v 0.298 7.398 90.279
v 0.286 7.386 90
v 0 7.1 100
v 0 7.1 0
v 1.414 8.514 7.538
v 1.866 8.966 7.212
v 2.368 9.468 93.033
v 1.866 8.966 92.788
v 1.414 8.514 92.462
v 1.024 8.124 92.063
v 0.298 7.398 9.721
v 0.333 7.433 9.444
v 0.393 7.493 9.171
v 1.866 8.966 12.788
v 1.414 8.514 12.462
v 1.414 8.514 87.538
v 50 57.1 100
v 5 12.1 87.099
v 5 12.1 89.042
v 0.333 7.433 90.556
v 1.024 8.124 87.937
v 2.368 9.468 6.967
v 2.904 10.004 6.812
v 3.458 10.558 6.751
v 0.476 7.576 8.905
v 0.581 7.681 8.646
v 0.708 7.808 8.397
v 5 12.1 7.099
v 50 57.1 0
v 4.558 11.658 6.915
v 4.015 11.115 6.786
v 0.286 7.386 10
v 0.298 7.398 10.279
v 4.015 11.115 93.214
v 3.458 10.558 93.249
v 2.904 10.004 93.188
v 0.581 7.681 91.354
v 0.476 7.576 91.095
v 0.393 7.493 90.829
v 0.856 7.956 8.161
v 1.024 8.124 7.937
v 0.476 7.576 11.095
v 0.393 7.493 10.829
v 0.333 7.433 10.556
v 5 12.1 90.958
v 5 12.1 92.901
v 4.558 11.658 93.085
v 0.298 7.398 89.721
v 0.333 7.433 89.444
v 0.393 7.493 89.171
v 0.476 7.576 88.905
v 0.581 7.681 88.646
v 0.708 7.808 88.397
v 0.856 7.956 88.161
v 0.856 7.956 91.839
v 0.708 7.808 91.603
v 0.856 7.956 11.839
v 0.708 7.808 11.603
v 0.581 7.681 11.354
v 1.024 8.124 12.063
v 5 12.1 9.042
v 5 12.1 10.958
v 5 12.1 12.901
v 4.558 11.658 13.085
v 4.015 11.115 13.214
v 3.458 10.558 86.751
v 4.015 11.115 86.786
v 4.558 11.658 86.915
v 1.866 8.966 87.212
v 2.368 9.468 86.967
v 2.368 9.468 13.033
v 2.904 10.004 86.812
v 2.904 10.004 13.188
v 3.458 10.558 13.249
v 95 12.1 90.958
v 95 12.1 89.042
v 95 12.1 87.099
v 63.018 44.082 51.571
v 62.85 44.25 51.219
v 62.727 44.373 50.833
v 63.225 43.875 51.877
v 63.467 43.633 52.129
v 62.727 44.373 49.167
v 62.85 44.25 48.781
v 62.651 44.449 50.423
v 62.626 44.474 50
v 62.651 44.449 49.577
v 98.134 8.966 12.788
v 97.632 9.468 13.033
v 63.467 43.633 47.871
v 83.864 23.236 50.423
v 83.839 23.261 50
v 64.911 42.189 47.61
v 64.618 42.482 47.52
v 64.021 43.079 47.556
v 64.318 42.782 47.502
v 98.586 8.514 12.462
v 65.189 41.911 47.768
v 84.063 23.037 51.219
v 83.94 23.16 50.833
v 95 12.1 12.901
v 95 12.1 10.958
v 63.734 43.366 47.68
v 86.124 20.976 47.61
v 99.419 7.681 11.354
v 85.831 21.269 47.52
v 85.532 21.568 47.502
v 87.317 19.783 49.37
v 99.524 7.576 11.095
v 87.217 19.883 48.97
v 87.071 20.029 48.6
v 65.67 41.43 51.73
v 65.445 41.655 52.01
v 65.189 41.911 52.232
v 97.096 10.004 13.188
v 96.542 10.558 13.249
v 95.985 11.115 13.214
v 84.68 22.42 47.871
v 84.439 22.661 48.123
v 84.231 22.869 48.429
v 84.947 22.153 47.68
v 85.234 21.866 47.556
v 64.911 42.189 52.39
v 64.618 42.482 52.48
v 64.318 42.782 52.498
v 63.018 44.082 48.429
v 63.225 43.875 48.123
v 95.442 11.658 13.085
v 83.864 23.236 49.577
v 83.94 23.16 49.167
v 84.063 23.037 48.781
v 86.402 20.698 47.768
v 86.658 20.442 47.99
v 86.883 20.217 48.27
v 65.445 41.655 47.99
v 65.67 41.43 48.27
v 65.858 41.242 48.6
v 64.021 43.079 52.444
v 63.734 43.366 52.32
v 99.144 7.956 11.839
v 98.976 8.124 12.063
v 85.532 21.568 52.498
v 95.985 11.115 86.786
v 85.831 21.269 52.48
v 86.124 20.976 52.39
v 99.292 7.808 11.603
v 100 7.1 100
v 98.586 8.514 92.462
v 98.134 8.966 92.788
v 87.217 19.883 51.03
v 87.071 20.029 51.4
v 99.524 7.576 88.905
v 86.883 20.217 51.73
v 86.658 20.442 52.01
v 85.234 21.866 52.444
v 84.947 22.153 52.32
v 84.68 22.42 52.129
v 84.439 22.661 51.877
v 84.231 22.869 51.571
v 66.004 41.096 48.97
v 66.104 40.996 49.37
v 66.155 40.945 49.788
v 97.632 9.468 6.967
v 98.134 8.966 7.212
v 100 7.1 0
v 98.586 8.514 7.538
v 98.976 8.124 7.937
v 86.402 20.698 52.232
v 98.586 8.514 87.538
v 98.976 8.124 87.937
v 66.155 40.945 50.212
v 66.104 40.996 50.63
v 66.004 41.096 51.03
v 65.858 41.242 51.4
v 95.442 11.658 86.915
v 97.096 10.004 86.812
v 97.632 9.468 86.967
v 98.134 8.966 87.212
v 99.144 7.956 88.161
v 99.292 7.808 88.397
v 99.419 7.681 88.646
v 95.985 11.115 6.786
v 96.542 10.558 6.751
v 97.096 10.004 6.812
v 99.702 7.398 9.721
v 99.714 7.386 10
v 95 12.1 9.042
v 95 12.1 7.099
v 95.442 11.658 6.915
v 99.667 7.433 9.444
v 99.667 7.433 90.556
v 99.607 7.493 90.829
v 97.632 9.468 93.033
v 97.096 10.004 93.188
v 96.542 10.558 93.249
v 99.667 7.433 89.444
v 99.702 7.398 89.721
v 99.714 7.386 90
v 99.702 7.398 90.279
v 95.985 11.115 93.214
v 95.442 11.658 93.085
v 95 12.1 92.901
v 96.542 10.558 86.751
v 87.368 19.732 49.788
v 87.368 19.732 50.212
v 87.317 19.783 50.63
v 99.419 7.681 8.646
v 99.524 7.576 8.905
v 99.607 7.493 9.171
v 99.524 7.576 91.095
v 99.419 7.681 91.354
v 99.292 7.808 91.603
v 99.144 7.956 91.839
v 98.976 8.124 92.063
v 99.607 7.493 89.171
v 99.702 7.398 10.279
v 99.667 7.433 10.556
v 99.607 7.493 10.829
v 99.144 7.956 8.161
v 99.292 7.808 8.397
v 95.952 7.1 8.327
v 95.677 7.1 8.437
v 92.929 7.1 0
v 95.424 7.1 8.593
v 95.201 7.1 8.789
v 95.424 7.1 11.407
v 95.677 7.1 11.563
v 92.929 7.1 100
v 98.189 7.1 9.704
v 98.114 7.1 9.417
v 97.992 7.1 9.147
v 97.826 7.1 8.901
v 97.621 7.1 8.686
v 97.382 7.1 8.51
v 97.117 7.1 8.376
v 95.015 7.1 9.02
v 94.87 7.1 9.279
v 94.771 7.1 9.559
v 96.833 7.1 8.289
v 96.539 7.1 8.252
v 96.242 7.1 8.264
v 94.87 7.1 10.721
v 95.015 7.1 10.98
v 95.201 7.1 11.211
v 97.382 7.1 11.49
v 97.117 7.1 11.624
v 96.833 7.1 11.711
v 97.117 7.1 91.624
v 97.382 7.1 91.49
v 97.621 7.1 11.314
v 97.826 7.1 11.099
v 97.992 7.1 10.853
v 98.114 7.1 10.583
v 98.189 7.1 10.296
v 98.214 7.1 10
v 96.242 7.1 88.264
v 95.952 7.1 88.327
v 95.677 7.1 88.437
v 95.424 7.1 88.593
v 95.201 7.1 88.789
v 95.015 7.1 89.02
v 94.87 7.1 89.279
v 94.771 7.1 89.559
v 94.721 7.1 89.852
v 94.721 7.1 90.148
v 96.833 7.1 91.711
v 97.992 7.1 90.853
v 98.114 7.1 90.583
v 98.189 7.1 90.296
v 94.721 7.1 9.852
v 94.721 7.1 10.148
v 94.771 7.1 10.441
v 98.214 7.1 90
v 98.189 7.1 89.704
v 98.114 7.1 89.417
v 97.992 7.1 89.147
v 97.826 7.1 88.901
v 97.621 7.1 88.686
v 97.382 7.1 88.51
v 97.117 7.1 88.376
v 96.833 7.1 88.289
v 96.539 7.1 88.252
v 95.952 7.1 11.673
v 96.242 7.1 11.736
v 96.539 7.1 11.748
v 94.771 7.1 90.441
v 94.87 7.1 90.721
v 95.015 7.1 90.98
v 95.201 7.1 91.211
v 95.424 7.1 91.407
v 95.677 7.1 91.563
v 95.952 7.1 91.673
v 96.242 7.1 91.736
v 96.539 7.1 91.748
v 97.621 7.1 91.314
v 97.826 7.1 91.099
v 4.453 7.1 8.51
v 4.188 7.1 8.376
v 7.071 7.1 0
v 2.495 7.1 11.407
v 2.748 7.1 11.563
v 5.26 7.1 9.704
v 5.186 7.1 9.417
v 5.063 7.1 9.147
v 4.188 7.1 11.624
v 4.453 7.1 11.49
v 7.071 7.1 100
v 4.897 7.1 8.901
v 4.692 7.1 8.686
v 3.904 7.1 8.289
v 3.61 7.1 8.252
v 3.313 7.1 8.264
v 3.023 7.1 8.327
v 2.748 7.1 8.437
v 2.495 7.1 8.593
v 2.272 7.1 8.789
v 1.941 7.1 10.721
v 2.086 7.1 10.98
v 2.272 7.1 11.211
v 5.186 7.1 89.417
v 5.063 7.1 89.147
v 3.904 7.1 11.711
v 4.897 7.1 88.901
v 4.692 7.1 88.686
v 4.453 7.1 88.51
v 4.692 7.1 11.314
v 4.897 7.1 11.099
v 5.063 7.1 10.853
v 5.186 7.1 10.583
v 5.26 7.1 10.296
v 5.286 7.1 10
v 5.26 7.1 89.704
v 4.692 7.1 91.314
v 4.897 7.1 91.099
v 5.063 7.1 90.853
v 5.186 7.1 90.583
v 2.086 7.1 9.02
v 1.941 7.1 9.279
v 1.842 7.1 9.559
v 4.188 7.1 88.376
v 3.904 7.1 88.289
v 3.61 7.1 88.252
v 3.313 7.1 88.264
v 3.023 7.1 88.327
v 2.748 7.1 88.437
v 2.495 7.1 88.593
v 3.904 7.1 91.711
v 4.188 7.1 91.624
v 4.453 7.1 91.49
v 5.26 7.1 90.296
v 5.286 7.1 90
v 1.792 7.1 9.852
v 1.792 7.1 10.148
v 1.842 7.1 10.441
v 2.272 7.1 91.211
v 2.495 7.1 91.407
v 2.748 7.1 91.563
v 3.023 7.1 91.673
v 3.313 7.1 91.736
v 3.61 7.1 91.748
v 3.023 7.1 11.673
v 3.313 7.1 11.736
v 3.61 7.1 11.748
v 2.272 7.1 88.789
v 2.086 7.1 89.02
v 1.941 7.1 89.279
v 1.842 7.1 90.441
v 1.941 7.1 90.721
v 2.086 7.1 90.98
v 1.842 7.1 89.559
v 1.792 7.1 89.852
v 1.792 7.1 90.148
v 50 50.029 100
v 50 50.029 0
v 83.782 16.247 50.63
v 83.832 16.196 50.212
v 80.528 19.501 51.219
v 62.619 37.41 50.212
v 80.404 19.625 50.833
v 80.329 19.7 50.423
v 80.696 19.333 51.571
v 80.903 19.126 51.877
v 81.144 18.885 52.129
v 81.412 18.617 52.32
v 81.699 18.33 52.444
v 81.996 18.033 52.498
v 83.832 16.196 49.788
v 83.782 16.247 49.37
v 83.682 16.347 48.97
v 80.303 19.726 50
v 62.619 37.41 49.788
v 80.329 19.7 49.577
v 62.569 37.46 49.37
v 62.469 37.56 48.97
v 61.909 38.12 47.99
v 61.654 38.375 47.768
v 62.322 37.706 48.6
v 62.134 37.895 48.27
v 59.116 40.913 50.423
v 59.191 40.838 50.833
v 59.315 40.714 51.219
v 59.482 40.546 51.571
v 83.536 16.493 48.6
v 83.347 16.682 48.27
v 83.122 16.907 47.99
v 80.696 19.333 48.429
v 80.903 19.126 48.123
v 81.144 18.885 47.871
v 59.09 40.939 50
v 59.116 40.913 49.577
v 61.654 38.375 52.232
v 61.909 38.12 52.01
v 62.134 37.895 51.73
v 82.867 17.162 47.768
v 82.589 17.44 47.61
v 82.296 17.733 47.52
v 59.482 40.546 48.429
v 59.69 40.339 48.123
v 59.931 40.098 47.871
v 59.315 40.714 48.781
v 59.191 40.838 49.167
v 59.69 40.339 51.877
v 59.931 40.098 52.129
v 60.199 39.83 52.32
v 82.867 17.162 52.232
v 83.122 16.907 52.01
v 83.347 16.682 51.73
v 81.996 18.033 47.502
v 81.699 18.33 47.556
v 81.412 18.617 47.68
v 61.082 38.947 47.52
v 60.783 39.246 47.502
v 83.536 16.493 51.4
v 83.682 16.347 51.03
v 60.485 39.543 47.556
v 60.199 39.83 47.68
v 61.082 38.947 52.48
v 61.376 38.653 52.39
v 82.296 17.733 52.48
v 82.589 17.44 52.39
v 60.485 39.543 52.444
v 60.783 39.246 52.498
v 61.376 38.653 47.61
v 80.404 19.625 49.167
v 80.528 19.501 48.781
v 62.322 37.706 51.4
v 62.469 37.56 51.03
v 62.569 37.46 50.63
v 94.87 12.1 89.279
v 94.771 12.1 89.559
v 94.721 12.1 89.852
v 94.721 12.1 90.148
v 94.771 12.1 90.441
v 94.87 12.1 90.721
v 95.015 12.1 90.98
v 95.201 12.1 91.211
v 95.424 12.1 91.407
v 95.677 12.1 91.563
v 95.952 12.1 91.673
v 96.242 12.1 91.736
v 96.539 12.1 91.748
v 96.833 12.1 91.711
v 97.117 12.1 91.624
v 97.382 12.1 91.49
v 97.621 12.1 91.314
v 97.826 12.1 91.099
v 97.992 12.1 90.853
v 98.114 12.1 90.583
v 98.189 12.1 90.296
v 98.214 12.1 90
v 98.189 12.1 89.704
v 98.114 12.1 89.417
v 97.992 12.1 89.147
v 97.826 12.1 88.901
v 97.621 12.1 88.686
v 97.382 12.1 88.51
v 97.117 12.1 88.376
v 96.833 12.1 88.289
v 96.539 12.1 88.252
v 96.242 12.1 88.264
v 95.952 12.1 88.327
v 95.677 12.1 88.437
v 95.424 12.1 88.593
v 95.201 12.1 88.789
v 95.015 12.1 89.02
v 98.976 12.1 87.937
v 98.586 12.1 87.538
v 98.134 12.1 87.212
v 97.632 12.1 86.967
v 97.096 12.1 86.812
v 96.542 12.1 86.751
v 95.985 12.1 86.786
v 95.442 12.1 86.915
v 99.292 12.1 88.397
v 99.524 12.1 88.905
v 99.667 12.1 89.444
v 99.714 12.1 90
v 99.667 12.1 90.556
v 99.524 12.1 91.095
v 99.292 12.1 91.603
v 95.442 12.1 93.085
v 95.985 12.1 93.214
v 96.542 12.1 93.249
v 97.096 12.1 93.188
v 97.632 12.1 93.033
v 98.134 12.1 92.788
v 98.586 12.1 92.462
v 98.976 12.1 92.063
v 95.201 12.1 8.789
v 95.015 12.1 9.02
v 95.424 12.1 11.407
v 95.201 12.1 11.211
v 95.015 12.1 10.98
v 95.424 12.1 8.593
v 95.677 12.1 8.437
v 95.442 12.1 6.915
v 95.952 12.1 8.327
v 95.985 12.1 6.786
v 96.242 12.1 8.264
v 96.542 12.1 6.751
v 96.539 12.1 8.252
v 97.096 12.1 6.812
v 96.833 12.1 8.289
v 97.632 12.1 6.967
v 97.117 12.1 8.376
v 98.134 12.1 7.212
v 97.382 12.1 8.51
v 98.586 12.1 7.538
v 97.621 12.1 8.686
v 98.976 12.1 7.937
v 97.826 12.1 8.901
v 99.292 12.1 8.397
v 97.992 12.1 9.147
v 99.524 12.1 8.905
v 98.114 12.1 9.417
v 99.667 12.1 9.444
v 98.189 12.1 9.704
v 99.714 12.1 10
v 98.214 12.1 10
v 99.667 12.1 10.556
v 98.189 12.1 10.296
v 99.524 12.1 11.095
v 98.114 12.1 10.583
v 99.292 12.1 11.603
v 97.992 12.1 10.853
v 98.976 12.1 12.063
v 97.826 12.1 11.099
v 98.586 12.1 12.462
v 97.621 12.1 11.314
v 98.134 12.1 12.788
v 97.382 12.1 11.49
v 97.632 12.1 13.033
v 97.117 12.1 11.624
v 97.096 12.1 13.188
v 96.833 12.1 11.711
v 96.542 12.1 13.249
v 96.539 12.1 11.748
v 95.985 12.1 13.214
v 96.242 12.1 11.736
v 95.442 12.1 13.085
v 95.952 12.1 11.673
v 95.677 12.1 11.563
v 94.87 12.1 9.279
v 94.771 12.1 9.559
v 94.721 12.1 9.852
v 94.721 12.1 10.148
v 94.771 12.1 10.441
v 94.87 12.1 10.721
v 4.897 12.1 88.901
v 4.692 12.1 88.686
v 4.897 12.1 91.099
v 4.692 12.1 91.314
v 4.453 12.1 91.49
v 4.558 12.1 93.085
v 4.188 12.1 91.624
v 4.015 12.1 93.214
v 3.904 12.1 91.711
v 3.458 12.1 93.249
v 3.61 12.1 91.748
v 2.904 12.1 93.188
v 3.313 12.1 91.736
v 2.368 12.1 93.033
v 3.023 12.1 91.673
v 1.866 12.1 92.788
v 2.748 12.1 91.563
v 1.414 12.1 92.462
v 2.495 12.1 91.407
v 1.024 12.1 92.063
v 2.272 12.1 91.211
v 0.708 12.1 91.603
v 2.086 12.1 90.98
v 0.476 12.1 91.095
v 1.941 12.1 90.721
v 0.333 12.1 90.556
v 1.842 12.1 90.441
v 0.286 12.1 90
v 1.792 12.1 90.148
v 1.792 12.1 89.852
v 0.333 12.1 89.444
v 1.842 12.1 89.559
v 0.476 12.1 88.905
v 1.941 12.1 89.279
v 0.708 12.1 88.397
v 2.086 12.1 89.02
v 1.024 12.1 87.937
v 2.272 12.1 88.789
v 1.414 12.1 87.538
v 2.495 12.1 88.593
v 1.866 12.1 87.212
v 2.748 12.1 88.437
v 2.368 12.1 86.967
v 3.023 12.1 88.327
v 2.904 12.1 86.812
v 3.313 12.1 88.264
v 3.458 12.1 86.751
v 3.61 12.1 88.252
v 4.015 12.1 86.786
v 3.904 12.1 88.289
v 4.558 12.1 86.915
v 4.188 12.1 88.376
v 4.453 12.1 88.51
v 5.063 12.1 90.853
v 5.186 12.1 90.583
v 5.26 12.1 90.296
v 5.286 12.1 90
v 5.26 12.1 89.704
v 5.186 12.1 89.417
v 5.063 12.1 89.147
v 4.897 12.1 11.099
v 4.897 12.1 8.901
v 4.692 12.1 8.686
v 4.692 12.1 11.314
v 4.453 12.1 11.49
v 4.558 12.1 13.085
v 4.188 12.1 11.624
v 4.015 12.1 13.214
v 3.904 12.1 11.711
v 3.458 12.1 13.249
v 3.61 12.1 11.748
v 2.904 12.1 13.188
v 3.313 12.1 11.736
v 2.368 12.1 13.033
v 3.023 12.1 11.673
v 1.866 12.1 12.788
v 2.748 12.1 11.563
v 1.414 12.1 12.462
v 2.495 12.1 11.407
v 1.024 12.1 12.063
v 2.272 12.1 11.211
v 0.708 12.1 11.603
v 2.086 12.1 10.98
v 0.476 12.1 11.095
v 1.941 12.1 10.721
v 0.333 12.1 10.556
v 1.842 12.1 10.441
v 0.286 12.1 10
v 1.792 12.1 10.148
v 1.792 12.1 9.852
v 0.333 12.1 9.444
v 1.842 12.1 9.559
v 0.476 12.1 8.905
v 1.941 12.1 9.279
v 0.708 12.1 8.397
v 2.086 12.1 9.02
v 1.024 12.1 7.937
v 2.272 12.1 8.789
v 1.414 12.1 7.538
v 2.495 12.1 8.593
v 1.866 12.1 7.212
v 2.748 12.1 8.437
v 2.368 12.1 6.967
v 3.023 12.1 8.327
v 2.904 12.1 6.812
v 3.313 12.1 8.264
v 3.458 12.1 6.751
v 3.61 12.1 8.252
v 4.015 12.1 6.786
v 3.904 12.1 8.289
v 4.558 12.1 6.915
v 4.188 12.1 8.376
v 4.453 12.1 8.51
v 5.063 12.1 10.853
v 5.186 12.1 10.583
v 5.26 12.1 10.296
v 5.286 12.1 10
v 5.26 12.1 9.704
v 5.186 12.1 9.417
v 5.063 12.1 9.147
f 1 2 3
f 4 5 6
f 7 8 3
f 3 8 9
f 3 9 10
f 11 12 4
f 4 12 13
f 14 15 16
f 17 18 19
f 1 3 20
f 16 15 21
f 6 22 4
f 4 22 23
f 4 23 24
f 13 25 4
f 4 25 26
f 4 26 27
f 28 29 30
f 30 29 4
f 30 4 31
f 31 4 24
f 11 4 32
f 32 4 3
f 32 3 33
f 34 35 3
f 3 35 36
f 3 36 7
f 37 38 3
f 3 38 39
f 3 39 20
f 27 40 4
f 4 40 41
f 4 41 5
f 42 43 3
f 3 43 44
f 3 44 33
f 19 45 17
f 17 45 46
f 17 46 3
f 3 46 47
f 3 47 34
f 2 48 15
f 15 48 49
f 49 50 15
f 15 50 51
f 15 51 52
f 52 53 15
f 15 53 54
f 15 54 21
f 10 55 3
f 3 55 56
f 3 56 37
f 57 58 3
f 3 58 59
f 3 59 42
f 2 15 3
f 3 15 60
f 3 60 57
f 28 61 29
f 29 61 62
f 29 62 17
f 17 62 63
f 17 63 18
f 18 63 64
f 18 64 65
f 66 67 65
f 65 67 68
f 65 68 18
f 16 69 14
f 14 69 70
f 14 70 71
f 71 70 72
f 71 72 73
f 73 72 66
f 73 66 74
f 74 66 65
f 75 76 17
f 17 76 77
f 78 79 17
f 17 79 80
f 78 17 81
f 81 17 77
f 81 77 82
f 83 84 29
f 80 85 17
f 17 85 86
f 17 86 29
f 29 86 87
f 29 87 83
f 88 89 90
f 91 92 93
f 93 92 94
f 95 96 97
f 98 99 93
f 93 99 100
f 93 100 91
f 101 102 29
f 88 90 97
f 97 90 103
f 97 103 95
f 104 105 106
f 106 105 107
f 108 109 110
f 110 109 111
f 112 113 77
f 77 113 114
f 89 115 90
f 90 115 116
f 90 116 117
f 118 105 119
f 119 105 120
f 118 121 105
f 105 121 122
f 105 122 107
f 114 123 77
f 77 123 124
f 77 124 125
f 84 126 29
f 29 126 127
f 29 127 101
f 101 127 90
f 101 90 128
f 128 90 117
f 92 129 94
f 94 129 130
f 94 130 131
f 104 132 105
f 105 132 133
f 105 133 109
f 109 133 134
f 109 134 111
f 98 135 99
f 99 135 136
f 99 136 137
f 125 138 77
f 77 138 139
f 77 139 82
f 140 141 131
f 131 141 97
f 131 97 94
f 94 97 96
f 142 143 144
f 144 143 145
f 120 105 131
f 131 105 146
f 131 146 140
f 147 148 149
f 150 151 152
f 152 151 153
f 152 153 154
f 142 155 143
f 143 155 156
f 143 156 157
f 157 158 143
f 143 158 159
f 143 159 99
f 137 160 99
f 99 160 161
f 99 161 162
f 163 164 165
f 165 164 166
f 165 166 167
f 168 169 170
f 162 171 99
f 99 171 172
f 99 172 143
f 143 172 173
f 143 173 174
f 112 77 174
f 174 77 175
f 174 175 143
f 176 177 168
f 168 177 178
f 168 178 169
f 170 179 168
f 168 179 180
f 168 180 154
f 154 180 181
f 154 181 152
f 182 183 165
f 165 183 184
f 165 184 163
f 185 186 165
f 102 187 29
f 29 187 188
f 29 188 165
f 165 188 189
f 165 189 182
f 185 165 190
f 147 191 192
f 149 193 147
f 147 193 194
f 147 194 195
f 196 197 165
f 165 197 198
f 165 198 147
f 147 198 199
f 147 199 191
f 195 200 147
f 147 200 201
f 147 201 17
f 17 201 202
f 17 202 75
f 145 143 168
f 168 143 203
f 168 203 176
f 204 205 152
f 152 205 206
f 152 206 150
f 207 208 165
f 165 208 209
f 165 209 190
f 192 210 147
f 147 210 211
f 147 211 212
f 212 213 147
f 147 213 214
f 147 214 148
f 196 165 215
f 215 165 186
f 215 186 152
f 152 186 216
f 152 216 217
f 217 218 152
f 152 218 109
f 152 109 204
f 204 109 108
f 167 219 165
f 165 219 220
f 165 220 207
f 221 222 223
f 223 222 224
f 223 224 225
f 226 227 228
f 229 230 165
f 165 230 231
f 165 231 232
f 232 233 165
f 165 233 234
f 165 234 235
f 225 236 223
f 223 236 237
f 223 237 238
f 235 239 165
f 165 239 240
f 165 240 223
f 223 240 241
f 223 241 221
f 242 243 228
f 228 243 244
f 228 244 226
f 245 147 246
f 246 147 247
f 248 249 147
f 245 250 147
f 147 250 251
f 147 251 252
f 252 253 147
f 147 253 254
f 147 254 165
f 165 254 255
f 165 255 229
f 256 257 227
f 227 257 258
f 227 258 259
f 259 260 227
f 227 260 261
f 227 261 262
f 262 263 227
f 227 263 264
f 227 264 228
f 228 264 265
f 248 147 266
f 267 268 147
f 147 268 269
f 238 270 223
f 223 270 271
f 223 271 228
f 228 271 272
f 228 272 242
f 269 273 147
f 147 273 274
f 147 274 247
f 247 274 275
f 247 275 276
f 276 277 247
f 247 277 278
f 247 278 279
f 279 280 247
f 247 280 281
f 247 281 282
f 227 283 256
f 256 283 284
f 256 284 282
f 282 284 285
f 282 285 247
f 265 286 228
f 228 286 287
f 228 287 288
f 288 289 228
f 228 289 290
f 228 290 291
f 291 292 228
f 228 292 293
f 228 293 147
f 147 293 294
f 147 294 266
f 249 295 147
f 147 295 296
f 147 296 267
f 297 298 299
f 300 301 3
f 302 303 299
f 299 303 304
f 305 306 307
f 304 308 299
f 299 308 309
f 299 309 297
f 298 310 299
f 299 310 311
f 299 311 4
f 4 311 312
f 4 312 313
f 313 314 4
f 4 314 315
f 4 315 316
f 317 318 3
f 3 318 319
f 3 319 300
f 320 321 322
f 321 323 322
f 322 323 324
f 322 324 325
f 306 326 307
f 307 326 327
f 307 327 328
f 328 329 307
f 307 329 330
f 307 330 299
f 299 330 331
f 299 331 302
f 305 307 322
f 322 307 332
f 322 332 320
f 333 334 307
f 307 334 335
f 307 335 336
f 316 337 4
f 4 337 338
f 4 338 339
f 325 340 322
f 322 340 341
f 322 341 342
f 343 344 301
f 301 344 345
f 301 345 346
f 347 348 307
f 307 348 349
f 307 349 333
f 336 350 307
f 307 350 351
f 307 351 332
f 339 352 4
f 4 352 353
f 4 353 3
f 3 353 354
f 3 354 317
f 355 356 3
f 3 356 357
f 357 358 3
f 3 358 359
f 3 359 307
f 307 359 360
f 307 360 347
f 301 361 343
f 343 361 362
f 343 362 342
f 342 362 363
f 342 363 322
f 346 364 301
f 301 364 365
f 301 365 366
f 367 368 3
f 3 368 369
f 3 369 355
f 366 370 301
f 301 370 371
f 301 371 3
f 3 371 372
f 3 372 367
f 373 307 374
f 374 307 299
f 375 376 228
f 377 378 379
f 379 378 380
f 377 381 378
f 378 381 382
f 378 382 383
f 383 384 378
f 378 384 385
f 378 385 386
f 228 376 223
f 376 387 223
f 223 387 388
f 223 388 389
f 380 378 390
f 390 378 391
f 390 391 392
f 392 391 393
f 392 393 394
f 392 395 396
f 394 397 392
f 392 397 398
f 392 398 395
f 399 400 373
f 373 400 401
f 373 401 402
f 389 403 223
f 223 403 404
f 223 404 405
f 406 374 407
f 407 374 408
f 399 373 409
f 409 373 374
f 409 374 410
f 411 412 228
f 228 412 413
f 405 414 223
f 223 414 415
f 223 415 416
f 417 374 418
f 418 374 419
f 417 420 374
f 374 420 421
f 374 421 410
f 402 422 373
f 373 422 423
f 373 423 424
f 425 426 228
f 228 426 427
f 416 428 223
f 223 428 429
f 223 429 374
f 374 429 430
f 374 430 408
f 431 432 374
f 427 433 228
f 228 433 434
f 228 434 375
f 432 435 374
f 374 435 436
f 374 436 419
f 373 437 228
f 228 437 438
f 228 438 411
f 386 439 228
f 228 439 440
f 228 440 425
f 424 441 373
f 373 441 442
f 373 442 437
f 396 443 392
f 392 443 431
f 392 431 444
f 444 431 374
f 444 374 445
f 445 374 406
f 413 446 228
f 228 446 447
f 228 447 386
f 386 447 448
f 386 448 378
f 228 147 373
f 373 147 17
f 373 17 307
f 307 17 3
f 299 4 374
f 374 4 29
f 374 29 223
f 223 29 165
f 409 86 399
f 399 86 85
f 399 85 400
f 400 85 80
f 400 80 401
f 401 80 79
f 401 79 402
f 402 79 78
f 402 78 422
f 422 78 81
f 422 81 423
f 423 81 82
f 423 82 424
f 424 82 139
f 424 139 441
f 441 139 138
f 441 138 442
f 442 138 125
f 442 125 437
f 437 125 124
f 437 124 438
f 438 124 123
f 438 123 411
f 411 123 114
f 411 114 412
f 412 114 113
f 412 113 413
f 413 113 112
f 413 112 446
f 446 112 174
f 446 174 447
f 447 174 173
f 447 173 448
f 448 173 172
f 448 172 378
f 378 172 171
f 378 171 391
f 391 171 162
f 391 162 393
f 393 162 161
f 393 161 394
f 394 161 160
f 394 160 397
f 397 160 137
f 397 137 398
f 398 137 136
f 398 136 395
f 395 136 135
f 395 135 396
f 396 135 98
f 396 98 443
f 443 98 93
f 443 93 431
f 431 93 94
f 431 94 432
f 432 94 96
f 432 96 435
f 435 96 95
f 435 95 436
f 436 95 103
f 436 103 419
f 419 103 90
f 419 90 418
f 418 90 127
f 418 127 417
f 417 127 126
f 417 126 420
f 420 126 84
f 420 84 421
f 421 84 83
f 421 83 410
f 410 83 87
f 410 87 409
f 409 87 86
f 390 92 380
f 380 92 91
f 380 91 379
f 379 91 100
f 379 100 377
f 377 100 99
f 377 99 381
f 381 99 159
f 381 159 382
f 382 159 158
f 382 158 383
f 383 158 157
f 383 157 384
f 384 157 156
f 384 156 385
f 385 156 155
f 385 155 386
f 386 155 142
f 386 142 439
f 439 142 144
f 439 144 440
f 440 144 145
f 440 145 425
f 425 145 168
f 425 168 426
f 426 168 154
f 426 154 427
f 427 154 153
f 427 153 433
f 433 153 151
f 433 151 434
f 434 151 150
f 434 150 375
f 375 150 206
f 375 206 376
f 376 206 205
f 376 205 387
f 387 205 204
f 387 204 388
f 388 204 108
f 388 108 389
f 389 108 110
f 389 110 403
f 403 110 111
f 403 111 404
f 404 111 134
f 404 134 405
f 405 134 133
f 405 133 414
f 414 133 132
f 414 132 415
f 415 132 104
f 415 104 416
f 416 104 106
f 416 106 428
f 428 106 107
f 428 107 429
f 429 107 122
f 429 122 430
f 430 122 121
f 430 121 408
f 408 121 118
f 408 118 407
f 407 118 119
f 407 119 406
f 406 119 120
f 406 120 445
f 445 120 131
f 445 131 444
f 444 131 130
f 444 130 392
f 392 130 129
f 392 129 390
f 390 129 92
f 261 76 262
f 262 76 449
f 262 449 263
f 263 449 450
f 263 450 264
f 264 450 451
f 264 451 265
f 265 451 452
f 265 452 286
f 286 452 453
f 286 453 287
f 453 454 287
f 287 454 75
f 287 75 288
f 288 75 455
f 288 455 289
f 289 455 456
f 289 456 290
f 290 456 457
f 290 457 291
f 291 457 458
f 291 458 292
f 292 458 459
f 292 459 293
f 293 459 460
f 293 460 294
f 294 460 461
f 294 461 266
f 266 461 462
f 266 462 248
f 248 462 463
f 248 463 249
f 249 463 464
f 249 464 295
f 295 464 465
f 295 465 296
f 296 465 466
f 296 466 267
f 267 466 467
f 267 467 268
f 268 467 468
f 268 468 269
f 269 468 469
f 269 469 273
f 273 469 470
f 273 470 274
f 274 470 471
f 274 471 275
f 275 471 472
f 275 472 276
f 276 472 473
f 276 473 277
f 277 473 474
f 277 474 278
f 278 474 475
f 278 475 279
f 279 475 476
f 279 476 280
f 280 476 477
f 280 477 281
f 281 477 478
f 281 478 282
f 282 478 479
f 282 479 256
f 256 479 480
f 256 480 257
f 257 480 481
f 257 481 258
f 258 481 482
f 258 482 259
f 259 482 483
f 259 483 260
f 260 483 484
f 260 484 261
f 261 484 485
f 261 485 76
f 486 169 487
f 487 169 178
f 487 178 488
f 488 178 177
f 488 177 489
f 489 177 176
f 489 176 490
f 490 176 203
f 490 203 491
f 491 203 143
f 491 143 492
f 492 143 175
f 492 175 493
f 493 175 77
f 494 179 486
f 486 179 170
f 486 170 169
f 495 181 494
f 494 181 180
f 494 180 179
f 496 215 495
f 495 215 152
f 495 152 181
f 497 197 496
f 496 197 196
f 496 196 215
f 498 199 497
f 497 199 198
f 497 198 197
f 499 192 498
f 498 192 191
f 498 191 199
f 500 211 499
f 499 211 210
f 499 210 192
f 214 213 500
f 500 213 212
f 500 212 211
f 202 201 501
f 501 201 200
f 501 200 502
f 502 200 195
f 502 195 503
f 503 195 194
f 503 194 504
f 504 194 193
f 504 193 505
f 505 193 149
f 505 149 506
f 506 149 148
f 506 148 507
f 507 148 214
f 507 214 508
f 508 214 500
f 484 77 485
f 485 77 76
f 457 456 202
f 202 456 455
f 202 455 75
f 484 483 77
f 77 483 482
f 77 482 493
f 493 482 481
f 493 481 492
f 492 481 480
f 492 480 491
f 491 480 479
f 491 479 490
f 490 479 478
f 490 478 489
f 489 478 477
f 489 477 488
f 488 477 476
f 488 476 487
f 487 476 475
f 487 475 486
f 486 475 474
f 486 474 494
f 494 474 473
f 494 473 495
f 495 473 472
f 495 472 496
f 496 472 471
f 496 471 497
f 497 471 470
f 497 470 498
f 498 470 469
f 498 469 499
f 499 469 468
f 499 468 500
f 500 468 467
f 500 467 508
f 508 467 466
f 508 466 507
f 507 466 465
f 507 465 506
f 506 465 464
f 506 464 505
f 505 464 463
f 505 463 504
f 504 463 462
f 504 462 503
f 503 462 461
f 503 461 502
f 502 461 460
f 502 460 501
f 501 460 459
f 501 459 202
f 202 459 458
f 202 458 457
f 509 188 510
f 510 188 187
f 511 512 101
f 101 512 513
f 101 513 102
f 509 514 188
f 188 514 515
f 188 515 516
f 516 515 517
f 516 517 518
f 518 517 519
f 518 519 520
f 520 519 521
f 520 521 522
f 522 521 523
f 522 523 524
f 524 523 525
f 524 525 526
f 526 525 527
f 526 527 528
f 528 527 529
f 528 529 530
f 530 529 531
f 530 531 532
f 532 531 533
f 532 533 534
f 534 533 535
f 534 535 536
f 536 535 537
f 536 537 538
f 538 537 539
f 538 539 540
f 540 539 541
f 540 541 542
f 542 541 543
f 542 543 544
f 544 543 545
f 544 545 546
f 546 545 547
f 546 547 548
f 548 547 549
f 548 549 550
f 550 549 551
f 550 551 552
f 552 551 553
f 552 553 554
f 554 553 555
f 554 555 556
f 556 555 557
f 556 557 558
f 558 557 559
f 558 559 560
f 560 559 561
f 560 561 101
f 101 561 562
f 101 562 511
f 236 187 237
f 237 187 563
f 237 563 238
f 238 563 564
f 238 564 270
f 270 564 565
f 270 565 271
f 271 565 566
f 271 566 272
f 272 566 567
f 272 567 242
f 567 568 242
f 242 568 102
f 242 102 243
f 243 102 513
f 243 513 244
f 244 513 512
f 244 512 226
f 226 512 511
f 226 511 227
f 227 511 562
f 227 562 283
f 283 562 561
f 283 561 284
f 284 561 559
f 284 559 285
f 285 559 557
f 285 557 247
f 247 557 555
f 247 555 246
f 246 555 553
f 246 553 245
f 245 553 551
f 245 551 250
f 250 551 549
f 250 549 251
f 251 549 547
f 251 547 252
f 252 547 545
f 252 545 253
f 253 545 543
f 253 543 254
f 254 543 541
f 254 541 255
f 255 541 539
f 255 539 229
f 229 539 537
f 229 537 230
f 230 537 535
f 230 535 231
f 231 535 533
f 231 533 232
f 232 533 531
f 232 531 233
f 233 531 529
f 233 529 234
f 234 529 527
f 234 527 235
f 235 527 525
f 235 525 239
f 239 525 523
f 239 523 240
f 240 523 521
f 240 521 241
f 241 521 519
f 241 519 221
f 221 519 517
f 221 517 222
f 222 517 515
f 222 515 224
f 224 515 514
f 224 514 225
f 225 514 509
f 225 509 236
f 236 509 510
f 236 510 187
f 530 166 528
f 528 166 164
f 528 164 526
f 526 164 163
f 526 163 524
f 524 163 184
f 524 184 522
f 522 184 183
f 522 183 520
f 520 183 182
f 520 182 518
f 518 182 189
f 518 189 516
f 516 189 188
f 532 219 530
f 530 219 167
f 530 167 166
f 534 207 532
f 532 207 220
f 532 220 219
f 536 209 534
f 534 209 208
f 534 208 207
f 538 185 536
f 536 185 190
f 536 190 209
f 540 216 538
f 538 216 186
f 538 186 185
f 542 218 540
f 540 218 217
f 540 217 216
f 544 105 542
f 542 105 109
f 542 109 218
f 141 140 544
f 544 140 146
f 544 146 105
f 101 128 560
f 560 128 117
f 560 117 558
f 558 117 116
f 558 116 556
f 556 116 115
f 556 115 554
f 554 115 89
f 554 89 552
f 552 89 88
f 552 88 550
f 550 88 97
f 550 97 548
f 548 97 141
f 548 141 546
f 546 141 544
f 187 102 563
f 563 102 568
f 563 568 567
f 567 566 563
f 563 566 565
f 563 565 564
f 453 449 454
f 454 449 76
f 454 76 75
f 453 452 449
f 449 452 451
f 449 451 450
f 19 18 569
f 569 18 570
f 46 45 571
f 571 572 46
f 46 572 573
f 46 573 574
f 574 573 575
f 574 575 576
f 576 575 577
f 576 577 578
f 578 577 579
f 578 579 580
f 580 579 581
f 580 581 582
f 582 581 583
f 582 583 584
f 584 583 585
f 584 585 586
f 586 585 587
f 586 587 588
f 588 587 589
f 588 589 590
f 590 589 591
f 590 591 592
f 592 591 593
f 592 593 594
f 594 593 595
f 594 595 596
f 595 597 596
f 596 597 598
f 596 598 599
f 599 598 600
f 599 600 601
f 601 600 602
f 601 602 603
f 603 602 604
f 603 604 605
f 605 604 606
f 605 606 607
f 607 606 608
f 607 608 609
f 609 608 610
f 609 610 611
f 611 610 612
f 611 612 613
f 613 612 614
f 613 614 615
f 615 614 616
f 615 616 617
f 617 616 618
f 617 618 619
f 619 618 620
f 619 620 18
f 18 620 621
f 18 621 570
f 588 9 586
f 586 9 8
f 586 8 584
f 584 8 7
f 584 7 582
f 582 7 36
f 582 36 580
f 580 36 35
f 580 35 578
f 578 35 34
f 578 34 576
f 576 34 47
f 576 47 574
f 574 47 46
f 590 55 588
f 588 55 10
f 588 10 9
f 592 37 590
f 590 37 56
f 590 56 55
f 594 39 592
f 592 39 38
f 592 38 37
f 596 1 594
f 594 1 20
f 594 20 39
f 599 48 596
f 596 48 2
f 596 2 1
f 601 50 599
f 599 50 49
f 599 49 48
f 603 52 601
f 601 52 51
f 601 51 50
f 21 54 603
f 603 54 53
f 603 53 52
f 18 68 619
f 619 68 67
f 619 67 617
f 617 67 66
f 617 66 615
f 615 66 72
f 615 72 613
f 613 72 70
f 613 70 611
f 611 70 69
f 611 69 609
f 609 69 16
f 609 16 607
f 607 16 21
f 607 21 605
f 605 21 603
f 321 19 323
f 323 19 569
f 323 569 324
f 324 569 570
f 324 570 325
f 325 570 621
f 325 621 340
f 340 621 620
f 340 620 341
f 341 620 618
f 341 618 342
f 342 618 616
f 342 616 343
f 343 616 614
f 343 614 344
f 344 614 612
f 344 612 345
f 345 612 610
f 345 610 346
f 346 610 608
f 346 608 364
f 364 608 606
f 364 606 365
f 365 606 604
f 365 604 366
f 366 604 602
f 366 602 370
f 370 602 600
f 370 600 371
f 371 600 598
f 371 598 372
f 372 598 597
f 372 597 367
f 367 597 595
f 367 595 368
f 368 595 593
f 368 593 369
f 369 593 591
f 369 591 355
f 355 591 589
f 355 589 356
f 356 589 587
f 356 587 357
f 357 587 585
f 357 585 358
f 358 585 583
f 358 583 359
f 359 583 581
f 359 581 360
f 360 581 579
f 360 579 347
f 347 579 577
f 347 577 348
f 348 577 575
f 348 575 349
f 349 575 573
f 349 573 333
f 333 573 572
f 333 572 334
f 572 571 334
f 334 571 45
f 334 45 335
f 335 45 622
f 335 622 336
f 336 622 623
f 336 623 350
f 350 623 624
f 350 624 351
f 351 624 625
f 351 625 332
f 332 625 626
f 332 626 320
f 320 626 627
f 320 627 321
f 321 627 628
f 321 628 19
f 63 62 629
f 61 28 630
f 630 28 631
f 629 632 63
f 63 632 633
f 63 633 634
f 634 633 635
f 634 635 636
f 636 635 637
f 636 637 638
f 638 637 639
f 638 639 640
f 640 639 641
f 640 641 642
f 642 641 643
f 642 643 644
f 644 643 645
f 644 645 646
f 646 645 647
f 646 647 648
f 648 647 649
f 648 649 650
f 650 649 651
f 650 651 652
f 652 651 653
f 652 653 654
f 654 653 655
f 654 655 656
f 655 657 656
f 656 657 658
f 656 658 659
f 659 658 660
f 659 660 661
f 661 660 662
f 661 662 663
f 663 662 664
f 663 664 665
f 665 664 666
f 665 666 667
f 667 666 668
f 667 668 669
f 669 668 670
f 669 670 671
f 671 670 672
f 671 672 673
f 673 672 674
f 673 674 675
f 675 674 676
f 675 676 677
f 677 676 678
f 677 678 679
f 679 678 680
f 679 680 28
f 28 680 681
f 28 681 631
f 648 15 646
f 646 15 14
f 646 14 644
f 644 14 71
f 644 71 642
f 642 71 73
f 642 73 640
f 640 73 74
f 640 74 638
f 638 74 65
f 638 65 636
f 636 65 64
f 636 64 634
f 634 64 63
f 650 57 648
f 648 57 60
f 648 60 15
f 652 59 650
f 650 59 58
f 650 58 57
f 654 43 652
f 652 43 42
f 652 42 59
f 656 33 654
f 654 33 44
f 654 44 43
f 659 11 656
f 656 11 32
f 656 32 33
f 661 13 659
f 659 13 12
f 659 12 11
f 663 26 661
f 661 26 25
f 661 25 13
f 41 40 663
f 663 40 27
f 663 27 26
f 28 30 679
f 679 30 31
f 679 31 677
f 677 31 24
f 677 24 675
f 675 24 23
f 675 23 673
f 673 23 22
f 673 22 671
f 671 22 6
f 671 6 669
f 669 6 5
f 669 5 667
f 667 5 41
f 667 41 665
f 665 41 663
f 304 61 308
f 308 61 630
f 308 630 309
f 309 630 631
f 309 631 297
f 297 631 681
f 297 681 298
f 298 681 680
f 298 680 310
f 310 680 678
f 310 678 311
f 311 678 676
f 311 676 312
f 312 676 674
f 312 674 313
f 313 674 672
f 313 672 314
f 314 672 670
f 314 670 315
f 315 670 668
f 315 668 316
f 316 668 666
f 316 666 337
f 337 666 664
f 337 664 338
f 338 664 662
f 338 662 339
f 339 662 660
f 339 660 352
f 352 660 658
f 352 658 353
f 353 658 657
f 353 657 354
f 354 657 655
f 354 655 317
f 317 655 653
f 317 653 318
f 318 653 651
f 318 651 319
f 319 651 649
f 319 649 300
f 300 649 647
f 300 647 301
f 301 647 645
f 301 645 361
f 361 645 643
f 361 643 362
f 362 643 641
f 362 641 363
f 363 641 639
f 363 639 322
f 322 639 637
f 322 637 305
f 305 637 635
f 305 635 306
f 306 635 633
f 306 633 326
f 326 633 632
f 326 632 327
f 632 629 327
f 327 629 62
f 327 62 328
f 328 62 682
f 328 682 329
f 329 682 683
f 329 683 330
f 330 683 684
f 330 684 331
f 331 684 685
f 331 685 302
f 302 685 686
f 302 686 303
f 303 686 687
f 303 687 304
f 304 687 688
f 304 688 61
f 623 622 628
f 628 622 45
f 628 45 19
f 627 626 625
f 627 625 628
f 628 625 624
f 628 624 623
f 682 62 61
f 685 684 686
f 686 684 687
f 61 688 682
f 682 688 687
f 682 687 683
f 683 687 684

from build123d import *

# Parameters (mm, degrees)
EXTRUDE_1_DEPTH     = 100
SKETCH_2_R          = 2.5
CUT_EXTRUDE_1_DEPTH = 100
SKETCH_3_R          = 3.25
SKETCH_3_R_2        = 1.75
EXTRUDE_2_DEPTH     = 5
SKETCH_4_R          = 1.75
CUT_EXTRUDE_3_DEPTH = 5
SKETCH_5_R          = 3.25
SKETCH_5_R_2        = 1.75
EXTRUDE_3_DEPTH     = 5
SKETCH_6_R          = 1.75
CUT_EXTRUDE_4_DEPTH = 5


with BuildPart() as part:
    # 草图1 → 凸台-拉伸1 (new body)
    with BuildSketch(Plane.XY):
        Polygon((0, 7.1), (50, 57.1), (100, 7.1), (92.928932188, 7.1), (50, 50.028932188), (7.071067812, 7.1), align=None)
    extrude(amount=EXTRUDE_1_DEPTH)

    # 草图2 → 切除-拉伸1 (cut)
    with BuildSketch(Plane(origin=(53.55, 53.55, 0), x_dir=(0, 0, -1), z_dir=(0.7071067811865474, 0.7071067811865477, 0))):
        with Locations(Location((-50, -15.334880913, 0), (0, 0, 90))):
            Circle(SKETCH_2_R)
        with Locations(Location((-50, -45.334880913, 0), (0, 0, 90))):
            Circle(SKETCH_2_R)
    extrude(amount=-CUT_EXTRUDE_1_DEPTH, mode=Mode.SUBTRACT)

    # 草图3 → 凸台-拉伸2 (add)
    # profile 1 of 2: a face of its own
    with BuildSketch(Plane.XZ.offset(-7.1)):
        with Locations((96.464466094, 90)):
            Circle(SKETCH_3_R)
        with Locations((96.464466094, 90)):
            Circle(SKETCH_3_R_2, mode=Mode.SUBTRACT)
    # profile 2 of 2: a face of its own
    with BuildSketch(Plane.XZ.offset(-7.1)):
        with Locations((96.464466094, 10)):
            Circle(SKETCH_3_R)
        with Locations((96.464466094, 10)):
            Circle(SKETCH_3_R_2, mode=Mode.SUBTRACT)
    extrude(amount=-EXTRUDE_2_DEPTH)

    # 草图4 → 切除-拉伸3 (cut)
    with BuildSketch(Plane.XZ.offset(-7.1)):
        with Locations((96.464466094, 90)):
            Circle(SKETCH_4_R)
        with Locations((96.464466094, 10)):
            Circle(SKETCH_4_R)
    extrude(amount=-CUT_EXTRUDE_3_DEPTH, mode=Mode.SUBTRACT)

    # 草图5 → 凸台-拉伸3 (add)
    # profile 1 of 2: a face of its own
    with BuildSketch(Plane.XZ.offset(-7.1)):
        with Locations((3.535533906, 90)):
            Circle(SKETCH_5_R)
        with Locations((3.535533906, 90)):
            Circle(SKETCH_5_R_2, mode=Mode.SUBTRACT)
    # profile 2 of 2: a face of its own
    with BuildSketch(Plane.XZ.offset(-7.1)):
        with Locations((3.535533906, 10)):
            Circle(SKETCH_5_R)
        with Locations((3.535533906, 10)):
            Circle(SKETCH_5_R_2, mode=Mode.SUBTRACT)
    extrude(amount=-EXTRUDE_3_DEPTH)

    # 草图6 → 切除-拉伸4 (cut)
    with BuildSketch(Plane.XZ.offset(-7.1)):
        with Locations((3.535533906, 10)):
            Circle(SKETCH_6_R)
        with Locations((3.535533906, 90)):
            Circle(SKETCH_6_R)
    extrude(amount=-CUT_EXTRUDE_4_DEPTH, mode=Mode.SUBTRACT)


solid = part.part
